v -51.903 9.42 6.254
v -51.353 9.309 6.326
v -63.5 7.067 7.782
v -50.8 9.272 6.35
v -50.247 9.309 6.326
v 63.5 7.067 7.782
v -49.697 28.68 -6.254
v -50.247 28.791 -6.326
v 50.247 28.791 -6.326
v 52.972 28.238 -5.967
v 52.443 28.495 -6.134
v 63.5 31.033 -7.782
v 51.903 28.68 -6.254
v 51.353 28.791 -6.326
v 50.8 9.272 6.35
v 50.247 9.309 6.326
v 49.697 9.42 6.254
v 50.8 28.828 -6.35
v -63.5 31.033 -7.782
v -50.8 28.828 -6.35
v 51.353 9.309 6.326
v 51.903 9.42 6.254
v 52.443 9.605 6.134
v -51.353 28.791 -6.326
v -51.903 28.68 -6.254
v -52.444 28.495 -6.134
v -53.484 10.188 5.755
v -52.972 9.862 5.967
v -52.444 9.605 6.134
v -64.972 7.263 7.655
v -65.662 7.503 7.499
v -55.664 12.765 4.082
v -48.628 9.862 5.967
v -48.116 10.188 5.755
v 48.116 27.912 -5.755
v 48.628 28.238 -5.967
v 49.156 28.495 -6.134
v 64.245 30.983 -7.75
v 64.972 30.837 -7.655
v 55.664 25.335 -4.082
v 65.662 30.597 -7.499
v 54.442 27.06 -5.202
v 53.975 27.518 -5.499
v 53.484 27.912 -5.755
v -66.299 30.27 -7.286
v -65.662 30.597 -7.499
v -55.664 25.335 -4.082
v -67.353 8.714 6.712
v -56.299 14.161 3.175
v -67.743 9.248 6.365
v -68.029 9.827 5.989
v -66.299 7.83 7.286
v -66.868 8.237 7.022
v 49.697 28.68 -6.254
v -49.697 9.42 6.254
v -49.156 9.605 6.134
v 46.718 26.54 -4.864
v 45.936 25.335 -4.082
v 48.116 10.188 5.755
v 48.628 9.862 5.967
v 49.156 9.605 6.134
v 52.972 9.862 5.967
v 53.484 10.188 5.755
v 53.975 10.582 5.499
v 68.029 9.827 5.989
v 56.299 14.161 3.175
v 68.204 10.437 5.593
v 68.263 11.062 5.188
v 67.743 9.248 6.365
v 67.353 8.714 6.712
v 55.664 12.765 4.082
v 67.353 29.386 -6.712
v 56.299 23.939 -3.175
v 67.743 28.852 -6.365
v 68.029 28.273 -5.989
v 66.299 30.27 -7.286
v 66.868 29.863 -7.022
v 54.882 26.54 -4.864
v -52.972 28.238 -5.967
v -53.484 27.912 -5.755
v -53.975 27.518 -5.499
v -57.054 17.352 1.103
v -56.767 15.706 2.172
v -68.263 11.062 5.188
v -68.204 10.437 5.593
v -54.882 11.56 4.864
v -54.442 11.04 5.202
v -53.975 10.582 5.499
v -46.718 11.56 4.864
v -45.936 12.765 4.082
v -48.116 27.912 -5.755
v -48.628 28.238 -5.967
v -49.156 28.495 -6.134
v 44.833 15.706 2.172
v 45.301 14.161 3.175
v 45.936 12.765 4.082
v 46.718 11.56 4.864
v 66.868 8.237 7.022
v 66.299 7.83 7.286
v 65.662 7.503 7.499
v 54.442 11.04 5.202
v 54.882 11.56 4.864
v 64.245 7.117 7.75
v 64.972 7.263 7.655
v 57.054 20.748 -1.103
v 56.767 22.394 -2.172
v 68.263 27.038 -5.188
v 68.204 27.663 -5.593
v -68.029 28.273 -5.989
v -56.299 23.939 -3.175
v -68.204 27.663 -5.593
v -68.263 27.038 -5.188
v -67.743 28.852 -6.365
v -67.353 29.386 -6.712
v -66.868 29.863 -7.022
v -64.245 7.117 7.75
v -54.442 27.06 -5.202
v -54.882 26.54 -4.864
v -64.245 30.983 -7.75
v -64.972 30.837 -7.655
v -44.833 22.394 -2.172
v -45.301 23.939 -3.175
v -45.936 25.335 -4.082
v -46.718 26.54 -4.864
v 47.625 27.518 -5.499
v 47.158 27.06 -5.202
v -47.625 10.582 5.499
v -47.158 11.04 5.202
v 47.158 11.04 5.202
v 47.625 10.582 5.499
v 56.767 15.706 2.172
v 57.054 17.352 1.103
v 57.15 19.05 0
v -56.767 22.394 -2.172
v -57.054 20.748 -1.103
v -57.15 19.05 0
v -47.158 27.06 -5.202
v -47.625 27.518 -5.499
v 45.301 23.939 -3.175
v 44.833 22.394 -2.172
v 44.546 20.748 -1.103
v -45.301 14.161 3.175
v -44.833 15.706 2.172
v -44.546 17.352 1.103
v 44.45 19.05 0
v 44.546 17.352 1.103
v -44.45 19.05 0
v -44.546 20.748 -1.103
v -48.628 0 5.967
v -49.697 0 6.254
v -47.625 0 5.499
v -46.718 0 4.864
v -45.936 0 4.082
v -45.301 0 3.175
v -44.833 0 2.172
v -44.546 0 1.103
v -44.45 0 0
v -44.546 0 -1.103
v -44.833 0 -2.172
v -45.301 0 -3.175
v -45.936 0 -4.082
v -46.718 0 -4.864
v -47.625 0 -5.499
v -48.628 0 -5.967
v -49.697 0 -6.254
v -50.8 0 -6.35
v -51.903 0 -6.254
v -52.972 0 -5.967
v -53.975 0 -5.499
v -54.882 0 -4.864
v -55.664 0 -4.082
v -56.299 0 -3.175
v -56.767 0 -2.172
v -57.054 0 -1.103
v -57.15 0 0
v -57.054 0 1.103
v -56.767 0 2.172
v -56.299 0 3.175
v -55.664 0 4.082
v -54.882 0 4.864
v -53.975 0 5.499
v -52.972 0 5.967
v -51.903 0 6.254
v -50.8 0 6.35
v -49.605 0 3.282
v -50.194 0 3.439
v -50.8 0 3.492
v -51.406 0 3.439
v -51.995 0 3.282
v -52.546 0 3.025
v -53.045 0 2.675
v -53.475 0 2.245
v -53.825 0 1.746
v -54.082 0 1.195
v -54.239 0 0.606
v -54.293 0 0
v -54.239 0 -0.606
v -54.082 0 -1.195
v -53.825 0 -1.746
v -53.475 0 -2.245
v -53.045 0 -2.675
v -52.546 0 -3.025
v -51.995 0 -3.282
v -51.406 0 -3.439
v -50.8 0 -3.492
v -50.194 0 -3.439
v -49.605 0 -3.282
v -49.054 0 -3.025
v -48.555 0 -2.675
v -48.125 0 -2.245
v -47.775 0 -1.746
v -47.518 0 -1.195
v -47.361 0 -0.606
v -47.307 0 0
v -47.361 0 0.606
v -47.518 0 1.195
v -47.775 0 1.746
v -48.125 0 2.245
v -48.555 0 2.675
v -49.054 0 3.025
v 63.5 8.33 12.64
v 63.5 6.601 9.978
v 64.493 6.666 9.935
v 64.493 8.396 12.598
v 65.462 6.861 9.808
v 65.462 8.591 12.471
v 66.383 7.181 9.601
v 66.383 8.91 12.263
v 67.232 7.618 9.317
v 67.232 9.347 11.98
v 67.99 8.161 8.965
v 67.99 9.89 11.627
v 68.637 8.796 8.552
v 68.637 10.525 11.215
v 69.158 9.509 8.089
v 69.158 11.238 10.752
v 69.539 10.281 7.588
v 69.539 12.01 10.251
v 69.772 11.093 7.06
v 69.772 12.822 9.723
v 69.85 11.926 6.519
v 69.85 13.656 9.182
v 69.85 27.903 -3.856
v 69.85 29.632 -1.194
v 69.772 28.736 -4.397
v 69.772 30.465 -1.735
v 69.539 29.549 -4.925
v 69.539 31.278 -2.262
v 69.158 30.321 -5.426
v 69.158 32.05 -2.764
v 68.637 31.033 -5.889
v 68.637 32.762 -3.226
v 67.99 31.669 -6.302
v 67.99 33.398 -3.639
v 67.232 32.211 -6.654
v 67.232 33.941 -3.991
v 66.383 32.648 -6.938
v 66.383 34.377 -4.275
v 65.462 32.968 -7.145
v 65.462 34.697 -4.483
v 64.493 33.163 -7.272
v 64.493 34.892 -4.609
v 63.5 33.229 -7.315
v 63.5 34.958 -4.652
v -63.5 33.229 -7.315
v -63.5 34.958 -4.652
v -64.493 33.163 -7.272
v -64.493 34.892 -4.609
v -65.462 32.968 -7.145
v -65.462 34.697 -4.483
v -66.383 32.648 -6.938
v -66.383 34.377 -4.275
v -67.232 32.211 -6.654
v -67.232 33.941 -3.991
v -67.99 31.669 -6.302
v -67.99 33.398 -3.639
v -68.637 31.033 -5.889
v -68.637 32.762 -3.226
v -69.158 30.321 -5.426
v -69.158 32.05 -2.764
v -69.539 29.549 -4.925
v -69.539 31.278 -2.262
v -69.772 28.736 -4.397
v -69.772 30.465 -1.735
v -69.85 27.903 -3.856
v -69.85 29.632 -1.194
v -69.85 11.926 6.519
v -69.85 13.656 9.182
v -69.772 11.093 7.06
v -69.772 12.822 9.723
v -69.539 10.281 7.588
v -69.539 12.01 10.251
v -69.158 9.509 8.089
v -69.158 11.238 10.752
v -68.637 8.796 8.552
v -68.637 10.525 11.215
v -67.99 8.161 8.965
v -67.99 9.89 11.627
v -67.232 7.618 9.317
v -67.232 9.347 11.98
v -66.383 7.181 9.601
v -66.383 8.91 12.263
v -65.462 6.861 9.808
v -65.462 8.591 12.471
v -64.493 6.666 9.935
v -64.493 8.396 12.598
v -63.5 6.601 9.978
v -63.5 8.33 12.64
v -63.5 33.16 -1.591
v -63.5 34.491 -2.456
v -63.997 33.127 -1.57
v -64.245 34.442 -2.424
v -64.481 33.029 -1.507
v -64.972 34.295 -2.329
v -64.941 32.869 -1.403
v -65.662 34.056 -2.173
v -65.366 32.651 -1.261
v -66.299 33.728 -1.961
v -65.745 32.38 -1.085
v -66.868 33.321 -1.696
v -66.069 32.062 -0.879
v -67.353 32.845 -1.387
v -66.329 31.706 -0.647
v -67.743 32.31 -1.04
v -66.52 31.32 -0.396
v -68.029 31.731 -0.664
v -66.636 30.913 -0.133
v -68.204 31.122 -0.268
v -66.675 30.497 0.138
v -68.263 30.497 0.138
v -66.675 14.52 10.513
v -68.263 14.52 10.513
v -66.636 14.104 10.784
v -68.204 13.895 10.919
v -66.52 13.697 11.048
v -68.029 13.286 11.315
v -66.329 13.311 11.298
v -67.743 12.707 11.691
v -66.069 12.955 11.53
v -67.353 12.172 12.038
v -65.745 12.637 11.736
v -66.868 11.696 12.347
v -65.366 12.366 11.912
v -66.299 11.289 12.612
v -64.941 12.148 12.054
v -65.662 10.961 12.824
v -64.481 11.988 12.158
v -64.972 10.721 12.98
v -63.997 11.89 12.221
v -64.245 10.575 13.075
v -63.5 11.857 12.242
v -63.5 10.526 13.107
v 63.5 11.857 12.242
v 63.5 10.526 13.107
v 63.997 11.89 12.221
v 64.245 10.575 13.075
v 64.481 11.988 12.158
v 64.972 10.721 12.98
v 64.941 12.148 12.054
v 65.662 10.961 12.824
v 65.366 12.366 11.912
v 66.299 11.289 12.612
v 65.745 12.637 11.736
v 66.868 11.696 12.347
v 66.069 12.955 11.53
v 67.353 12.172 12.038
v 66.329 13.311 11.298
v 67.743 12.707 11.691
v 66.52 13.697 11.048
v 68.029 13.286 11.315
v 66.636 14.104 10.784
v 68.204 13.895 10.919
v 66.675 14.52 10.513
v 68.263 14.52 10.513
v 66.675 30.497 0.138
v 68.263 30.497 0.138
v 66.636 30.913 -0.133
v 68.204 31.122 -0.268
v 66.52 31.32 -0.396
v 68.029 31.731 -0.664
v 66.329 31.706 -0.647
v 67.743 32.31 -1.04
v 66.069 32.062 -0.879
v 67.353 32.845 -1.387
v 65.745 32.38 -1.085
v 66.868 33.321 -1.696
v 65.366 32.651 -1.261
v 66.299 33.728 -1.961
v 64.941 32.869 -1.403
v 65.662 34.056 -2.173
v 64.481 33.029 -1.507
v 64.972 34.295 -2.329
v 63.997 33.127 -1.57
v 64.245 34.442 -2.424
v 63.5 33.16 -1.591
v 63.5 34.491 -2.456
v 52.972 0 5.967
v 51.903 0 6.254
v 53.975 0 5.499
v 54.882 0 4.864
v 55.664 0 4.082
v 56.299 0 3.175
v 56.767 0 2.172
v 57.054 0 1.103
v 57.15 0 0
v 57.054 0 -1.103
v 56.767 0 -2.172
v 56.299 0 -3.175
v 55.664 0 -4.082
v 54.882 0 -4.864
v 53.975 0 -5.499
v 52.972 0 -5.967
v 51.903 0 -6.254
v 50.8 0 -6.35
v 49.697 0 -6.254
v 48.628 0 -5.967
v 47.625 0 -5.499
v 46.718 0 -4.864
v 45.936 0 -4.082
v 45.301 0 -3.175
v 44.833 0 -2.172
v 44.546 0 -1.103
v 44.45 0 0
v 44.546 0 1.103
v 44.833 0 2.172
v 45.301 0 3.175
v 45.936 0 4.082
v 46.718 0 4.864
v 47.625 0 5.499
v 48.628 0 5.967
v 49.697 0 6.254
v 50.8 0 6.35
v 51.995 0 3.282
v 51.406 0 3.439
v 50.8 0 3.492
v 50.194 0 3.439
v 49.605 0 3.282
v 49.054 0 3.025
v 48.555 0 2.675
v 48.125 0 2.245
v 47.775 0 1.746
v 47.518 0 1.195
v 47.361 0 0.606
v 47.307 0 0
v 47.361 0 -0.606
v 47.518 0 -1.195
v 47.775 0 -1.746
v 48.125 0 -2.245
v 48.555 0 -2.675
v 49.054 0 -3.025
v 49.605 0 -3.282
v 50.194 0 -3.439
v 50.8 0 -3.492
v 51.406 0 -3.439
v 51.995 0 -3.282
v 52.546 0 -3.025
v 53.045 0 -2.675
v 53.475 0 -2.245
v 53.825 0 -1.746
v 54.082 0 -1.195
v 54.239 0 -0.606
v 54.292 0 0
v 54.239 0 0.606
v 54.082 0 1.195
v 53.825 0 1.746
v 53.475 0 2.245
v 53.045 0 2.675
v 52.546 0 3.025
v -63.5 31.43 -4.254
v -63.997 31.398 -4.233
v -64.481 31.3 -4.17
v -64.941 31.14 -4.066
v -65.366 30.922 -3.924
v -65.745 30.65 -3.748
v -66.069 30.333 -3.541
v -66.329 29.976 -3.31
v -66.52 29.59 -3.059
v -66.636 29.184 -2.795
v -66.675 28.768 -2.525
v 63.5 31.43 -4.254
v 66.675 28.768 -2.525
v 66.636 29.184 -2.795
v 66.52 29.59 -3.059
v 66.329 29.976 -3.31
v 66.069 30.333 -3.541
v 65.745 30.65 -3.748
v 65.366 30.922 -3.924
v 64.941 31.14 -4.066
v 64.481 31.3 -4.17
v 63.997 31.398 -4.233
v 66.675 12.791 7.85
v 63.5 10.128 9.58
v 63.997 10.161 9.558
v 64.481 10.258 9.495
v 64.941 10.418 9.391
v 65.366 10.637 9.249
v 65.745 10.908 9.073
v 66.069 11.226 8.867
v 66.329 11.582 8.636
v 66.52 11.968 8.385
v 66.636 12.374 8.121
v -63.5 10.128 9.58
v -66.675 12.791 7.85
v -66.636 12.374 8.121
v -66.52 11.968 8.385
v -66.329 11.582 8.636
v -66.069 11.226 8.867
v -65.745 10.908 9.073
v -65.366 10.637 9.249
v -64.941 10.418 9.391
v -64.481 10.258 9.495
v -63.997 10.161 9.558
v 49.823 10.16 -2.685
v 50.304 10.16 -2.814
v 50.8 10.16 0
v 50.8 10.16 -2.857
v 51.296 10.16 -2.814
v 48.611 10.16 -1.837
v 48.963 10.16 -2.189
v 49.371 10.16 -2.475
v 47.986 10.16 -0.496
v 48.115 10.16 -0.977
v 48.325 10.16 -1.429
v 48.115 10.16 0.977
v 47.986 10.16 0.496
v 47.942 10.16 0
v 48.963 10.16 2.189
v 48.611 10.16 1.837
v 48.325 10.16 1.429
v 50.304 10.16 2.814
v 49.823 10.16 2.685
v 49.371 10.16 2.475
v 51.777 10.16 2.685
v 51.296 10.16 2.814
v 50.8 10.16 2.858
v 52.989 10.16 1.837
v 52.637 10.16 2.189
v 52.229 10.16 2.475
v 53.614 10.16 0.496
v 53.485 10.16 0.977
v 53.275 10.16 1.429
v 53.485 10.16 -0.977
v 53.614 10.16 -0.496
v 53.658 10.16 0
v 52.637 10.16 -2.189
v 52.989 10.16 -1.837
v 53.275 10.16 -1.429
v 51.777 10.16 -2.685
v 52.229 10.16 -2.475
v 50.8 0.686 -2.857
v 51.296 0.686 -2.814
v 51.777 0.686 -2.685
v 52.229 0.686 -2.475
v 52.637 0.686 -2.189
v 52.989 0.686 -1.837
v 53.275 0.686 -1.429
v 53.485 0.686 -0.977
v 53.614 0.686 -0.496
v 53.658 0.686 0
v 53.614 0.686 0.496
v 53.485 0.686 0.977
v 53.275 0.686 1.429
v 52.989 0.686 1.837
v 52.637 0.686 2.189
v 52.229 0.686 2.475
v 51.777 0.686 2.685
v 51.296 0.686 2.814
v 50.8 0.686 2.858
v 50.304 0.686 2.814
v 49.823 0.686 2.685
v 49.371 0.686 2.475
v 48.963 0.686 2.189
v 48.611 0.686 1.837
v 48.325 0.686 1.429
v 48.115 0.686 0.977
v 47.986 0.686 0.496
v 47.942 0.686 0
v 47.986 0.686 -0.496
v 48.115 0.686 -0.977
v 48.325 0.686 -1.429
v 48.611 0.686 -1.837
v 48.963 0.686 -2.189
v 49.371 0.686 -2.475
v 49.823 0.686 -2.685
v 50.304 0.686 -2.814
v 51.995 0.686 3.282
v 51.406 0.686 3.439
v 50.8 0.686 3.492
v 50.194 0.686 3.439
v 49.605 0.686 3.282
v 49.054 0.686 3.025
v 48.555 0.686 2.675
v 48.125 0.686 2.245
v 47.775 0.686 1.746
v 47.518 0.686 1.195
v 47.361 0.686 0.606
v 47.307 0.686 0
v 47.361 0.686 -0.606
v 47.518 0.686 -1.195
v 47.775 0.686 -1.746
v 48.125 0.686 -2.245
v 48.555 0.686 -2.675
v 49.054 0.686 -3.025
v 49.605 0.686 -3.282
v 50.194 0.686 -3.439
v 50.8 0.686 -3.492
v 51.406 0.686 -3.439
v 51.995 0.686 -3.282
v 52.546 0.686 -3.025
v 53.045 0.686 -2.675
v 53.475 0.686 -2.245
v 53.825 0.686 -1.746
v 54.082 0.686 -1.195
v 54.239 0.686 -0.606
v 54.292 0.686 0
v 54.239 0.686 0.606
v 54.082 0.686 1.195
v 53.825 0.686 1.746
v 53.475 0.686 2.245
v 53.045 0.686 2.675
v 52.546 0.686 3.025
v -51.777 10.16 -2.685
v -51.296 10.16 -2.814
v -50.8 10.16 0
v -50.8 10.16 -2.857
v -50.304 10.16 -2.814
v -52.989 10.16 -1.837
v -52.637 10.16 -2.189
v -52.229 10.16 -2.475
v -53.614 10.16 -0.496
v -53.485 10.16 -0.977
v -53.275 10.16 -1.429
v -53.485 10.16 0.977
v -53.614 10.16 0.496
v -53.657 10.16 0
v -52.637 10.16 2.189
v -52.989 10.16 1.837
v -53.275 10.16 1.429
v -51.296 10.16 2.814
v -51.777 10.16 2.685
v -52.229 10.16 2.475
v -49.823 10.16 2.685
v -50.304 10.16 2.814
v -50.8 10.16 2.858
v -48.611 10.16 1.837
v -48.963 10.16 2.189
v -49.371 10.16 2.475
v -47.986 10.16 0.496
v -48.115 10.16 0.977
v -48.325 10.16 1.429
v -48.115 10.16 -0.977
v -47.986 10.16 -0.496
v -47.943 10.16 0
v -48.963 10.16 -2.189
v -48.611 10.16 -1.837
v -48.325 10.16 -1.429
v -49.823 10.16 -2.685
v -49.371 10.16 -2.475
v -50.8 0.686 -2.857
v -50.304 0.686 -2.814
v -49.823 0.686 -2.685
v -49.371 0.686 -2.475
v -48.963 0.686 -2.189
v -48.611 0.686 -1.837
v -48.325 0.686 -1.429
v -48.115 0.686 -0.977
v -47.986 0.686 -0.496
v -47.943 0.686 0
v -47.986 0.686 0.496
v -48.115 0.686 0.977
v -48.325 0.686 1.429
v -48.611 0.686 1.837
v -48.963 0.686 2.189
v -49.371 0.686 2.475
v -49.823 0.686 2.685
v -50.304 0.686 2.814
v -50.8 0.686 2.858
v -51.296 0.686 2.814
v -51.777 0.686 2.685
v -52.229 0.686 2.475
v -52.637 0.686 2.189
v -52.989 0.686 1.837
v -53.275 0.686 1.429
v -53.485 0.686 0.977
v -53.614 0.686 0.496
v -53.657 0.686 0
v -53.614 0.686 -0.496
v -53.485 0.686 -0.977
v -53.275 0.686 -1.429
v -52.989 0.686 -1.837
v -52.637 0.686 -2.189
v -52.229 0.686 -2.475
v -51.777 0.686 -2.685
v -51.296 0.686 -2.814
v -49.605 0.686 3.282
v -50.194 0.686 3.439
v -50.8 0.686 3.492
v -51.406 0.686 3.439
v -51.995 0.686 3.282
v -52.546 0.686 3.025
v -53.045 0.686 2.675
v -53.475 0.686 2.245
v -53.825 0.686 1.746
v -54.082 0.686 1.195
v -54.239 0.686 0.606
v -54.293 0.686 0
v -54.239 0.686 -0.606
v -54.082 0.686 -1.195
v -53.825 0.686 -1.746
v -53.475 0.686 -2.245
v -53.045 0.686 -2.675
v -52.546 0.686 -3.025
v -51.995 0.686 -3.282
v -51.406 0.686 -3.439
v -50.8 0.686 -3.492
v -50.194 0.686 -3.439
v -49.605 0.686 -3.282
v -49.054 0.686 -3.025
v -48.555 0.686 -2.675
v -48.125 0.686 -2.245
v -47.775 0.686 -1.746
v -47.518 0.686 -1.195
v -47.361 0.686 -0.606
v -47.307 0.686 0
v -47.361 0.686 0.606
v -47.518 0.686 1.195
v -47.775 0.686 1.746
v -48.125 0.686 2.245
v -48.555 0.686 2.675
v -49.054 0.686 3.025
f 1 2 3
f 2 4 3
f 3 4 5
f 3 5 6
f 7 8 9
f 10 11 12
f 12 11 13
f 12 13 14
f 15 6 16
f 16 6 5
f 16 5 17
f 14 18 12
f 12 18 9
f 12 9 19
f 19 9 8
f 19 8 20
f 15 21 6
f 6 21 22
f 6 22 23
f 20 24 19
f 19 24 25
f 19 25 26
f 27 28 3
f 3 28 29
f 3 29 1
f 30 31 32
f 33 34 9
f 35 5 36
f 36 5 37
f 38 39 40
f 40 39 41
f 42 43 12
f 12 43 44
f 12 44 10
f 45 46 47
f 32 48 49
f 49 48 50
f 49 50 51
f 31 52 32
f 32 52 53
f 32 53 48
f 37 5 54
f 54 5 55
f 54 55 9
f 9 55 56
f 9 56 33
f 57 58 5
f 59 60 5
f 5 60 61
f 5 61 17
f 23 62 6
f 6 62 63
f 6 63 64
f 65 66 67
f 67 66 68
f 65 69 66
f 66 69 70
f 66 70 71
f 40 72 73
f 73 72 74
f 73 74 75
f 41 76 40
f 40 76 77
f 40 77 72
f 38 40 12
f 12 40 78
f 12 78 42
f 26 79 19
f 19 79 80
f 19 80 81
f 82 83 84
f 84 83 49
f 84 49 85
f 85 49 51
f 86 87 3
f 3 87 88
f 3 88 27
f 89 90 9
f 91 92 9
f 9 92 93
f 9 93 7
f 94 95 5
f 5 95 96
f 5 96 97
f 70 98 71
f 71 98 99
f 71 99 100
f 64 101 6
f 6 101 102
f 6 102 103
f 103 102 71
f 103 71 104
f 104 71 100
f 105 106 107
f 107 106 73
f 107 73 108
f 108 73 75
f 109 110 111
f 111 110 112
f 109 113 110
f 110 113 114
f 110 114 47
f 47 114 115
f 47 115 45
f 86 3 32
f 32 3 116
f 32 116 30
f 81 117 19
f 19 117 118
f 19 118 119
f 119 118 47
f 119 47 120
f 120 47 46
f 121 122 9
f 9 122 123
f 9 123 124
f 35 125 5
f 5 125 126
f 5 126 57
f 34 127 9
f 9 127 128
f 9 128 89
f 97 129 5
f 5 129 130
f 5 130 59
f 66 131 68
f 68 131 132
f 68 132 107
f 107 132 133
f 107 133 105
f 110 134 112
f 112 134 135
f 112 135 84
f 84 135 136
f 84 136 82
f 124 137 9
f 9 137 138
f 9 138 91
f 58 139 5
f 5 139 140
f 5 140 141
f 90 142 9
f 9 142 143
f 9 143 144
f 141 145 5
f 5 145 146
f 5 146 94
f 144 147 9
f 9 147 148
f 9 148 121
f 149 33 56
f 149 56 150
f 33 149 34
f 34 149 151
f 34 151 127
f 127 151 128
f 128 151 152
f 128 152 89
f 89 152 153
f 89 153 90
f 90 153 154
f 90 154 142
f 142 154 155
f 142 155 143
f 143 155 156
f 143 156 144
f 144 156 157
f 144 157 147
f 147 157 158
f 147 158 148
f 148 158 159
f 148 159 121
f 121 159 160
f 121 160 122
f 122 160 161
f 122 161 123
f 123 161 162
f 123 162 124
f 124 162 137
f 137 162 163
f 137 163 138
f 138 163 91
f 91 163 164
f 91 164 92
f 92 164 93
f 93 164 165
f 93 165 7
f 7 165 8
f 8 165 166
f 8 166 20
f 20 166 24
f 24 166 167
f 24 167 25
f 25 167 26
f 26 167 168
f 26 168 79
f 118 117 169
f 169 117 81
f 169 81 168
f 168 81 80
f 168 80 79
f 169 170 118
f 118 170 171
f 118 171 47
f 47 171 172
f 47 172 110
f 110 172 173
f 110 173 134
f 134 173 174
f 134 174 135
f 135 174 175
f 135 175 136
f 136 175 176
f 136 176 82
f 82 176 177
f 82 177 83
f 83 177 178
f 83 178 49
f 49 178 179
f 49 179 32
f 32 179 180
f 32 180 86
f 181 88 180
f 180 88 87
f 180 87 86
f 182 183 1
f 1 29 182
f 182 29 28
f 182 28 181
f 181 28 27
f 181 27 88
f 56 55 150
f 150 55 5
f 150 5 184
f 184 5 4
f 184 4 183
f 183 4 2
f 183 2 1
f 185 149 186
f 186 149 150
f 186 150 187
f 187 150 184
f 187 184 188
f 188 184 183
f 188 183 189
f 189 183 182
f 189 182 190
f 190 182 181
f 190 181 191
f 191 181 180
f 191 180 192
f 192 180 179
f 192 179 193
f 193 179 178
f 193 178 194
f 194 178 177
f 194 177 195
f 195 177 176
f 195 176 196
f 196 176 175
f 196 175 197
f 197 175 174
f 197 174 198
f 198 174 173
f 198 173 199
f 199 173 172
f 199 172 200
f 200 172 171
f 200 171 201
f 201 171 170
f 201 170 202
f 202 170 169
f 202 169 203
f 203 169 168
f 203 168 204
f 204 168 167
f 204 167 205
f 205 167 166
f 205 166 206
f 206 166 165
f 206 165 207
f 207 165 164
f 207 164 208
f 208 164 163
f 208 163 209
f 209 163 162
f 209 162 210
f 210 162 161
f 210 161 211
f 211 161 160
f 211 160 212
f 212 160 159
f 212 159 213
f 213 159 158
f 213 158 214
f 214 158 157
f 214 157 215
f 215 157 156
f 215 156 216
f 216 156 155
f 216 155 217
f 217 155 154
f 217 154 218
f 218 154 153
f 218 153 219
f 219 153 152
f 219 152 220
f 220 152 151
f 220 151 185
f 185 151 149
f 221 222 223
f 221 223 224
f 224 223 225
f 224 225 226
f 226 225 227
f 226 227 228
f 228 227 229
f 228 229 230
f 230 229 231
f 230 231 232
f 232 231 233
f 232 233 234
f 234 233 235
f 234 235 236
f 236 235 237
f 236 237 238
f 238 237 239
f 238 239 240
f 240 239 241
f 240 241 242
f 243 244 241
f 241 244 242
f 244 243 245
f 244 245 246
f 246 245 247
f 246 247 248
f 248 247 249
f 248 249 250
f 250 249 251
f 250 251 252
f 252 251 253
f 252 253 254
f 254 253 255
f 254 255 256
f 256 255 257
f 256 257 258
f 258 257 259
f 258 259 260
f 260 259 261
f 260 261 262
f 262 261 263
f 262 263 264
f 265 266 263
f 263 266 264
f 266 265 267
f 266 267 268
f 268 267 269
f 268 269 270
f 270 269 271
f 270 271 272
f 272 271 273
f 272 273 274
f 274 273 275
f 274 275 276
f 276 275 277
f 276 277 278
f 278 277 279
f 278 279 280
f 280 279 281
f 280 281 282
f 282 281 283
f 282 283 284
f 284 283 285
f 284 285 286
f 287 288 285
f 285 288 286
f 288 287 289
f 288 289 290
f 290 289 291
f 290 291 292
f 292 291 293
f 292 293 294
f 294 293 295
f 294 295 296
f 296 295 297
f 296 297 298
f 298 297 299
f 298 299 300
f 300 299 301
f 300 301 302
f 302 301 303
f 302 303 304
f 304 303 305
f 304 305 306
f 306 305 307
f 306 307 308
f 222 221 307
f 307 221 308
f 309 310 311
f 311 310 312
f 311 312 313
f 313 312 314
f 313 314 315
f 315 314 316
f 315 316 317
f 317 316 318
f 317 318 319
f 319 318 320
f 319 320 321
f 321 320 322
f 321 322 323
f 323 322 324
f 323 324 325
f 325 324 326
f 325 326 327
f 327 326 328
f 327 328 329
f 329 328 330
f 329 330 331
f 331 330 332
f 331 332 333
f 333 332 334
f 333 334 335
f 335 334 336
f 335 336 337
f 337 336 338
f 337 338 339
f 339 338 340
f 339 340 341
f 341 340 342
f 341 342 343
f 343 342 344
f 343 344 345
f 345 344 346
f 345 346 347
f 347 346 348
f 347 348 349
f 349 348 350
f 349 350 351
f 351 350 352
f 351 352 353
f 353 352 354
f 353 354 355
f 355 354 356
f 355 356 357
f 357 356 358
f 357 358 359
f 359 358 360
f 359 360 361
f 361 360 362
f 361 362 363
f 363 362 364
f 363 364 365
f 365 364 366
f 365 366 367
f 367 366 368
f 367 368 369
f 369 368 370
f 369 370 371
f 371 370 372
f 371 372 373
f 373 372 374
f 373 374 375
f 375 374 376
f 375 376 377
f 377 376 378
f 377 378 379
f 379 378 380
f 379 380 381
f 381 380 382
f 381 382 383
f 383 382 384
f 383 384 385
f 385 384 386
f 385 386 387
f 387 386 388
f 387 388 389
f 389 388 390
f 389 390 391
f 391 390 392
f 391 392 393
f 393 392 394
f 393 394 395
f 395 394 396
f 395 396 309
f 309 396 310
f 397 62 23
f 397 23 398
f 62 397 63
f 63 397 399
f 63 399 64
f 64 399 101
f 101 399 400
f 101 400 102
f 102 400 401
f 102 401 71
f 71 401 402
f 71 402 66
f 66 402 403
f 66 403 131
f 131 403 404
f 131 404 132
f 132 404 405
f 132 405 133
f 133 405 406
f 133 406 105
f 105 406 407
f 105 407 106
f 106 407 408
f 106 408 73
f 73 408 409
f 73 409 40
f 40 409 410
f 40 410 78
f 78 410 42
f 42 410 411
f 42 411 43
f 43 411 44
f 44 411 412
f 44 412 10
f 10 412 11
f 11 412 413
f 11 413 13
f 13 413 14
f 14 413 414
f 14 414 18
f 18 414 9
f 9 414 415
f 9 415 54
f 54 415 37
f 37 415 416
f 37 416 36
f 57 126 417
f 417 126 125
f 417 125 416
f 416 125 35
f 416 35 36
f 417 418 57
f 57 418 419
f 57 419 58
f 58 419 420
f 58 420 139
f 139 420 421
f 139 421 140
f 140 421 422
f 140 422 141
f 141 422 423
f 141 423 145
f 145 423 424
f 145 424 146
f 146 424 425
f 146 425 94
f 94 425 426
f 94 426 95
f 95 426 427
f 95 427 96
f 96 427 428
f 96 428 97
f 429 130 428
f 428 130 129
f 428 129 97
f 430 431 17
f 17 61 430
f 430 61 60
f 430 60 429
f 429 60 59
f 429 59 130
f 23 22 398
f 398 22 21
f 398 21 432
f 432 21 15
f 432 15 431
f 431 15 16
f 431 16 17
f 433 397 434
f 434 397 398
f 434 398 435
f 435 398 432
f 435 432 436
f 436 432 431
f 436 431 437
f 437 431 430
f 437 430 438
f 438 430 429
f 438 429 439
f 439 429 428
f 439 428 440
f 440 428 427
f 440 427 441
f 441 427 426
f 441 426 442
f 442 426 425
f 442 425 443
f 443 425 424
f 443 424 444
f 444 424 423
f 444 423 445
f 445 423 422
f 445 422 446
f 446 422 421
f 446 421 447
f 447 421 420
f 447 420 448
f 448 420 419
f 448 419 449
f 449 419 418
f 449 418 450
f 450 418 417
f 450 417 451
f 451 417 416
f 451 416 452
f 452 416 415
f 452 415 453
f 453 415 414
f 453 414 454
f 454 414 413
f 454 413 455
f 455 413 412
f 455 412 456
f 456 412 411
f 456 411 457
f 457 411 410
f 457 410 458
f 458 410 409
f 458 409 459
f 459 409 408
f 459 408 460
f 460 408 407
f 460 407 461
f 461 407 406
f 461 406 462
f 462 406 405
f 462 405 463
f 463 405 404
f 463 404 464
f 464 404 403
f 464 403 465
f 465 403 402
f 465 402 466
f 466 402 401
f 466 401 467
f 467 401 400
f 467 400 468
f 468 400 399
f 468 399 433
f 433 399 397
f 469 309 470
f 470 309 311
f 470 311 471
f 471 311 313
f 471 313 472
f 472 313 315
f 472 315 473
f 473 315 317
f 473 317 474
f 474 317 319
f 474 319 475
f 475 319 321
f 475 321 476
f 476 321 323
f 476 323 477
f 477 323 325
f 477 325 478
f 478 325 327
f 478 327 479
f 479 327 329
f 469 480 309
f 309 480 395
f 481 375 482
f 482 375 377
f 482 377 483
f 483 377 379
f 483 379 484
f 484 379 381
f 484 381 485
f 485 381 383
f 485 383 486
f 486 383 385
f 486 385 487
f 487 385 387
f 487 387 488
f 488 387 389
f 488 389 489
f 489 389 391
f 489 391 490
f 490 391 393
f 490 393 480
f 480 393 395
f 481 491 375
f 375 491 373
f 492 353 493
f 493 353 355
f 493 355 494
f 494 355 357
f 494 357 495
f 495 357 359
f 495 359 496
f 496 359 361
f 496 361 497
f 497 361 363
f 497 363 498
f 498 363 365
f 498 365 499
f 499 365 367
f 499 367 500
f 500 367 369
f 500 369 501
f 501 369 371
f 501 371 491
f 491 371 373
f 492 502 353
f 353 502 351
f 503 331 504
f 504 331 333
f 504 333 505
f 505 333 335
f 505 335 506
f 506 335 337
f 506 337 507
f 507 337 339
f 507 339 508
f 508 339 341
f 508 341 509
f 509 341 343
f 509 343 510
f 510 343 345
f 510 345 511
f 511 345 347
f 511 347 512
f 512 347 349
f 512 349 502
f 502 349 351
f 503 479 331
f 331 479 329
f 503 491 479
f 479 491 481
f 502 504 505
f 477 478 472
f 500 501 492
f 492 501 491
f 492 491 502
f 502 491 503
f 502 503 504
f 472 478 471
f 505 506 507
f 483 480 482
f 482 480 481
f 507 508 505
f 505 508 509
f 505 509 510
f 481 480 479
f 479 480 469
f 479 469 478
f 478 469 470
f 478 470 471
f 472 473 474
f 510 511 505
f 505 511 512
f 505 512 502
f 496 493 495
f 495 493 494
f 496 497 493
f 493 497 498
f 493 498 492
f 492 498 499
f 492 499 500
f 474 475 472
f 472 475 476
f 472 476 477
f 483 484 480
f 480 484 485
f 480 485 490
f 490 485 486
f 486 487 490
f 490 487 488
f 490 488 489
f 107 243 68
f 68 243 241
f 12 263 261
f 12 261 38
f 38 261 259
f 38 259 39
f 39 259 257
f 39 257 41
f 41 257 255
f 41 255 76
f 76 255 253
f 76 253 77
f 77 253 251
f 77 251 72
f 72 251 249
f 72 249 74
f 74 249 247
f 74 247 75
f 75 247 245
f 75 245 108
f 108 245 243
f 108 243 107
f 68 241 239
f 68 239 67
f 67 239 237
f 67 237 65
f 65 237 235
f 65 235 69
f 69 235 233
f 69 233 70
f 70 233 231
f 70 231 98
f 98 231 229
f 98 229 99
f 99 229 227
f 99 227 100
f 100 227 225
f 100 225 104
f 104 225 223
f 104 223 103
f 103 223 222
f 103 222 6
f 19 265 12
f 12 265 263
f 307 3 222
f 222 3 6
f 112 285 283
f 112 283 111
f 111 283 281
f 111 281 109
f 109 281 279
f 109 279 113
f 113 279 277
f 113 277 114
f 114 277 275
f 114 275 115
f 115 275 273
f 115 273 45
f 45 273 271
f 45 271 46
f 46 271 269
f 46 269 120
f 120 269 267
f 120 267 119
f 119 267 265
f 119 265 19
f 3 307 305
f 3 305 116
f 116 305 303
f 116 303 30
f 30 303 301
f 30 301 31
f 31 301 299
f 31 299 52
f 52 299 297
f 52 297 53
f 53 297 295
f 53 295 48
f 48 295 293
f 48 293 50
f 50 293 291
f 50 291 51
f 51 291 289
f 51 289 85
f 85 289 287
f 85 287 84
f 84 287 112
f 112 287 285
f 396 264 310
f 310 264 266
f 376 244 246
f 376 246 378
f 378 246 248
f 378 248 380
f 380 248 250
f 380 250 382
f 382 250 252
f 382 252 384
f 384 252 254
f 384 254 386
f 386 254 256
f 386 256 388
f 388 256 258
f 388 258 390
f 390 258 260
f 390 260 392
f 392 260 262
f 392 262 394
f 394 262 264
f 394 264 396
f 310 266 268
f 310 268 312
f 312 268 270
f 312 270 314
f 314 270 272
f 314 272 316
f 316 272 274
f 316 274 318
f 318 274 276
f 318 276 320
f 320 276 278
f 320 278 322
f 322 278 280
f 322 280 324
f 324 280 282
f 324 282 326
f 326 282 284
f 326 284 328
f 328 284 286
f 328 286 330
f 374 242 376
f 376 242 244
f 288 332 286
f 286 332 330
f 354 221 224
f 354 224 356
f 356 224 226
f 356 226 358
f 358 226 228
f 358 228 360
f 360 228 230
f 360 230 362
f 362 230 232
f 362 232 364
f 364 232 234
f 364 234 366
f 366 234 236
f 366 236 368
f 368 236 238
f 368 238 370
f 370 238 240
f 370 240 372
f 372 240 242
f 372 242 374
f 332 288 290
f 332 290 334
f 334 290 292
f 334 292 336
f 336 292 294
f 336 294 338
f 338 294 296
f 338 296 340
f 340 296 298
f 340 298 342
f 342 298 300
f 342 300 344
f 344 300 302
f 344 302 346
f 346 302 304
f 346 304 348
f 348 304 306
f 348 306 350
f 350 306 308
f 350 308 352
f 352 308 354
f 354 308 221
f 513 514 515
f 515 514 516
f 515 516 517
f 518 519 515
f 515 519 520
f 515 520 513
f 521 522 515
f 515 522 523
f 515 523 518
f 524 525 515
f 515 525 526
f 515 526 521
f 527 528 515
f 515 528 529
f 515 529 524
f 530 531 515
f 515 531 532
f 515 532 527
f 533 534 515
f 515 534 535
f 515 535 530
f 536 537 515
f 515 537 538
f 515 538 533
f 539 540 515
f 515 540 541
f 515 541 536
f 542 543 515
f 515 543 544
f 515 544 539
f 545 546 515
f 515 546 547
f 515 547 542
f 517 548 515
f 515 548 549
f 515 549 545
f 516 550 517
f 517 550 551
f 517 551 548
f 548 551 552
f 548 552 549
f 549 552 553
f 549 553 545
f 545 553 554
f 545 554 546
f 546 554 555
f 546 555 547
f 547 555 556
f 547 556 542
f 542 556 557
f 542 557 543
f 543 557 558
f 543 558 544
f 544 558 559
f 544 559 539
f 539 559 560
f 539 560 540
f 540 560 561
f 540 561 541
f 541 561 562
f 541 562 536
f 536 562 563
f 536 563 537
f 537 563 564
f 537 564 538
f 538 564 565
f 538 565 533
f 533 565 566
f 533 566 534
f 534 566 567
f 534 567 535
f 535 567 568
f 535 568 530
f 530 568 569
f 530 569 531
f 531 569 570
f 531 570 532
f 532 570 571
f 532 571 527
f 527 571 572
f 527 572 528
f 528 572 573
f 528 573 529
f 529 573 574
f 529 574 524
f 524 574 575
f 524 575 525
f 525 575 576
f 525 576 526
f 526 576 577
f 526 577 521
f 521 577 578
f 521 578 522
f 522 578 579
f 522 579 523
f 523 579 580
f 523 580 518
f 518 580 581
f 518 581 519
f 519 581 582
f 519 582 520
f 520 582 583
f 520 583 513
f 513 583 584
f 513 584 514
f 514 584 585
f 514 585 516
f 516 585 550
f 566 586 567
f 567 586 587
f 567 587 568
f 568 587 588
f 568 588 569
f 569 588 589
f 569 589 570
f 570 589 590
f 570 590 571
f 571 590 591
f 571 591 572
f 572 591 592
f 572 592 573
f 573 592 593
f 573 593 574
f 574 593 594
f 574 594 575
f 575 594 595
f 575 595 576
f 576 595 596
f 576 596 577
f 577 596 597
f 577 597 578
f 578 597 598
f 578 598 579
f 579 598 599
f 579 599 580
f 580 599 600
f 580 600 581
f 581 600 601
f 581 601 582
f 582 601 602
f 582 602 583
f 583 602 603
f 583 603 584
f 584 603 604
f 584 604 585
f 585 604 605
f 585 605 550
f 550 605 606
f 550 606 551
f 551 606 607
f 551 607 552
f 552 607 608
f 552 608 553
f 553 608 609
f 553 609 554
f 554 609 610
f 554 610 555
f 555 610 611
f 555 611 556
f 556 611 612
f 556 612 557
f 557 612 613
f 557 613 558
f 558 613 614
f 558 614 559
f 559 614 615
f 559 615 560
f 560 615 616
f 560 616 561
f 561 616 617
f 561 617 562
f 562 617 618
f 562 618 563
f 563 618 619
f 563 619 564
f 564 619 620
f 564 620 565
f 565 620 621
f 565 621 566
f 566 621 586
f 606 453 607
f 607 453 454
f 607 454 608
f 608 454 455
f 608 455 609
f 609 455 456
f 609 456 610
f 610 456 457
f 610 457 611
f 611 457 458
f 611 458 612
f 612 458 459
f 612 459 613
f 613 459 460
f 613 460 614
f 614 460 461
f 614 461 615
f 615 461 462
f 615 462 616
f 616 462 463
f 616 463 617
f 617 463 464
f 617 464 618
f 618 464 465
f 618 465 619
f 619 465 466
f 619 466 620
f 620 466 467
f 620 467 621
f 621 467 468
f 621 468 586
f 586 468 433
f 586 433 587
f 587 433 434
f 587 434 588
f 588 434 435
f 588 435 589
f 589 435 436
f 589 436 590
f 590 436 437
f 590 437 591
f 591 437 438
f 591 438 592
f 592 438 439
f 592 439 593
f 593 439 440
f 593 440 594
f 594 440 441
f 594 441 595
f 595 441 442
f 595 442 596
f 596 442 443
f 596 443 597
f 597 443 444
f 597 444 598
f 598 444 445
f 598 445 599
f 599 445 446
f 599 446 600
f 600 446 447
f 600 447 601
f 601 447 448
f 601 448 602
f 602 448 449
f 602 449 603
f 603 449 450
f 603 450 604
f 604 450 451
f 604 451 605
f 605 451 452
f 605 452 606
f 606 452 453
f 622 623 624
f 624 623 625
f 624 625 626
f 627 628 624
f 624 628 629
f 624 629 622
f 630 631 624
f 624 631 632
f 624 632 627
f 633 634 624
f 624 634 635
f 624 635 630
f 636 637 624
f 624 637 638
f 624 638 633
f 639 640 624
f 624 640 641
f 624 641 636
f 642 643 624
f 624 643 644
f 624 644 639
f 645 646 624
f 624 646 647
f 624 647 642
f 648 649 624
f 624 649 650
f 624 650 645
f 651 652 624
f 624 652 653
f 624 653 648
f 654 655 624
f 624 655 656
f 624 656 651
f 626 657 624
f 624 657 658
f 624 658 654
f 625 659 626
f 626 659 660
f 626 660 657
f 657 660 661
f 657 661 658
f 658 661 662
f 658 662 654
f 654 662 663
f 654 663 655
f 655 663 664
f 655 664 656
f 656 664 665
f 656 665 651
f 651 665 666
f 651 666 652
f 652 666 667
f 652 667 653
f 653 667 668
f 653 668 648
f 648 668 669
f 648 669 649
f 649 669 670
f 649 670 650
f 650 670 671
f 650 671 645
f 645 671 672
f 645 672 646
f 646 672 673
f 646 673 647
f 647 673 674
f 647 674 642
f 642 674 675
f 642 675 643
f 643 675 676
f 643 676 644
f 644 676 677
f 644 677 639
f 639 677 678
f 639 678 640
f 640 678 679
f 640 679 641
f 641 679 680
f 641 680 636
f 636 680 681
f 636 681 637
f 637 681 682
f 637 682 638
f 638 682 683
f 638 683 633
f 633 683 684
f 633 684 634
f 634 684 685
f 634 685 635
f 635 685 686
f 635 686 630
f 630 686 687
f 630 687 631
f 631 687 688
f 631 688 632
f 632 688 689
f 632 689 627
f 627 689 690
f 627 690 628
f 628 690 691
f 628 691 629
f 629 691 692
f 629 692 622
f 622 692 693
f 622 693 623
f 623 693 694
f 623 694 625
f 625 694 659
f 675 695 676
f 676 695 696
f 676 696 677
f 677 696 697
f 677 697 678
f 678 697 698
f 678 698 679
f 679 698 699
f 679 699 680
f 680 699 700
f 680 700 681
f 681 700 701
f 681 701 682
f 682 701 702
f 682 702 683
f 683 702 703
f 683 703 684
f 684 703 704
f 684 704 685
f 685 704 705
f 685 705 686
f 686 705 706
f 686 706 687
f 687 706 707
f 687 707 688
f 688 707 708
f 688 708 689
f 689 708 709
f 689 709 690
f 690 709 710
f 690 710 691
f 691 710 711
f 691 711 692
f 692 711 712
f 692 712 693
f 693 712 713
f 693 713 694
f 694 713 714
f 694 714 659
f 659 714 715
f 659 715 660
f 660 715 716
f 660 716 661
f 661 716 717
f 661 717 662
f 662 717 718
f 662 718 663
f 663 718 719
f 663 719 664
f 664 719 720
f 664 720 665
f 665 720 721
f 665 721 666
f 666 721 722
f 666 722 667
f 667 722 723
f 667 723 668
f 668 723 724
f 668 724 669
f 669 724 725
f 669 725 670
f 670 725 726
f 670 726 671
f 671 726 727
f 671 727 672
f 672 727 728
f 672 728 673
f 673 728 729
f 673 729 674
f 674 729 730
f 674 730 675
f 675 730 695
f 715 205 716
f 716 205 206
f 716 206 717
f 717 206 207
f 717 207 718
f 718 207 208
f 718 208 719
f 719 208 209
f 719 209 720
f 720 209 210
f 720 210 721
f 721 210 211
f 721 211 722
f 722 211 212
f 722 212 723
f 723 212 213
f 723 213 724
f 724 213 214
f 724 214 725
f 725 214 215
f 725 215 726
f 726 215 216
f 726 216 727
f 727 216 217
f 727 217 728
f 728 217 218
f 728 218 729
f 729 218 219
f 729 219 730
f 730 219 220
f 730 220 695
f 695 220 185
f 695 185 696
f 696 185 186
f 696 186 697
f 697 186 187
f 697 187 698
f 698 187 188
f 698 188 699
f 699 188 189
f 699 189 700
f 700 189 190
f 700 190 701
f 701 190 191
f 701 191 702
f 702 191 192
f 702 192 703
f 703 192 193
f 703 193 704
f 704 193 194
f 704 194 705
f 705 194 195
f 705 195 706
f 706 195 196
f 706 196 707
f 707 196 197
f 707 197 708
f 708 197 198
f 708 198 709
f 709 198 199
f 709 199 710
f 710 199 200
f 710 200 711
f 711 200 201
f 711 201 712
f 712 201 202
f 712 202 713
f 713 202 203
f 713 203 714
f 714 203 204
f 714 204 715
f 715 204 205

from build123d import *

# Parameters (mm, degrees)
SKETCH2_R             = 6.35
BOSS_EXTRUDE1_DEPTH   = 19.05
BOSS_EXTRUDE1_2_DEPTH = 19.05
BOSS_EXTRUDE2_DEPTH   = 6.35
BOSS_EXTRUDE3_REACH   = 75.737
CUT_EXTRUDE1_DEPTH    = 3.175
CHAMFER2_SIZE         = 1.5875
HOLE1_D               = 5.715
HOLE1_DEPTH           = 10.16
HOLE1_CBORE_D         = 6.985
HOLE1_CBORE_DEPTH     = 0.6858


with BuildPart() as part:
    # Sketch2 → Boss-Extrude1 (new body)
    with BuildSketch(Plane(origin=(0, 0, 0), x_dir=(1, 0, 0), z_dir=(0, 1, 0))):
        with Locations((-50.8, 0)):
            Circle(SKETCH2_R)
    extrude(amount=BOSS_EXTRUDE1_DEPTH)



with BuildPart() as body_2:
    # Sketch2 → Boss-Extrude1 2 (new body)
    with BuildSketch(Plane(origin=(0, 0, 0), x_dir=(1, 0, 0), z_dir=(0, 1, 0))):
        with Locations((50.8, 0)):
            Circle(SKETCH2_R)
    extrude(amount=BOSS_EXTRUDE1_2_DEPTH)


with BuildPart() as part_1:
    add(part.part)

    add(body_2.part)  # Boss-Extrude2 merges body 2
    # Sketch3 → Boss-Extrude2 (add)
    with BuildSketch(Plane(origin=(0, 5.650833475, 8.701520484), x_dir=(-1, 0, 0), z_dir=(0, 0.5446390350150281, 0.8386705679454234))):
        with BuildLine():
            ThreePointArc((-69.85, -25.501674319), (-67.990128061, -29.99180238), (-63.5, -31.851674319))
            Line((-63.5, -31.851674319), (63.5, -31.851674319))
            ThreePointArc((63.5, -31.851674319), (67.990128061, -29.99180238), (69.85, -25.501674319))
            Line((69.85, -25.501674319), (69.85, -6.451674319))
            ThreePointArc((69.85, -6.451674319), (67.990128061, -1.961546259), (63.5, -0.101674319))
            Line((63.5, -0.101674319), (-63.5, -0.101674319))
            ThreePointArc((-63.5, -0.101674319), (-67.990128061, -1.961546259), (-69.85, -6.451674319))
            Line((-69.85, -6.451674319), (-69.85, -25.501674319))
        make_face()
    extrude(amount=BOSS_EXTRUDE2_DEPTH)

    # Sketch8 → Boss-Extrude3 (add, up to next)
    with BuildSketch(Plane(origin=(0, 19.05, 0), x_dir=(1, 0, 0), z_dir=(0, 1, 0)), mode=Mode.PRIVATE) as boss_extrude3_sk1:
        with BuildLine():
            ThreePointArc((57.15, 0), (50.8, 6.35), (44.45, 0))
            Line((44.45, 0), (57.15, 0))
        make_face()
    boss_extrude3_tool1 = extrude(boss_extrude3_sk1.sketch, amount=BOSS_EXTRUDE3_REACH, mode=Mode.PRIVATE) - part_1.part
    # Sketch8 → Boss-Extrude3 (add, up to next)
    with BuildSketch(Plane(origin=(0, 19.05, 0), x_dir=(1, 0, 0), z_dir=(0, 1, 0)), mode=Mode.PRIVATE) as boss_extrude3_sk2:
        with BuildLine():
            ThreePointArc((-44.45, 0), (-50.8, 6.35), (-57.15, 0))
            Line((-57.15, 0), (-44.45, 0))
        make_face()
    boss_extrude3_tool2 = extrude(boss_extrude3_sk2.sketch, amount=BOSS_EXTRUDE3_REACH, mode=Mode.PRIVATE) - part_1.part
    add(boss_extrude3_tool1.solids().sort_by_distance((50.8, 19.05, -2.695024))[0])
    add(boss_extrude3_tool2.solids().sort_by_distance((-50.8, 19.05, -2.695024))[0])

    # Sketch9 → Cut-Extrude1 (cut)
    with BuildSketch(Plane(origin=(0, 9.109291347, 14.02707859), x_dir=(1, 0, 0), z_dir=(0, 0.5446390350150282, 0.8386705679454234))):
        with BuildLine():
            Line((63.5, 28.676674319), (-63.5, 28.676674319))
            ThreePointArc((-63.5, 28.676674319), (-65.74506403, 27.74673835), (-66.675, 25.501674319))
            Line((-66.675, 25.501674319), (-66.675, 6.451674319))
            ThreePointArc((-66.675, 6.451674319), (-65.74506403, 4.206610289), (-63.5, 3.276674319))
            Line((-63.5, 3.276674319), (63.5, 3.276674319))
            ThreePointArc((63.5, 3.276674319), (65.74506403, 4.206610289), (66.675, 6.451674319))
            Line((66.675, 6.451674319), (66.675, 25.501674319))
            ThreePointArc((66.675, 25.501674319), (65.74506403, 27.74673835), (63.5, 28.676674319))
        make_face()
    extrude(amount=-CUT_EXTRUDE1_DEPTH, mode=Mode.SUBTRACT)

    # Chamfer2
    chamfer2_edges = [part_1.edges().sort_by_distance(p)[0] for p in [
        (-69.85, 19.05, 0),
        (0, 32.363895266, -8.646144681),
        (69.85, 19.05, 0),
        (0, 5.736104734, 8.646144681),
        (0, 9.194562606, 13.971702787),
        (-69.85, 22.508457872, 5.325558106),
        (69.85, 22.508457872, 5.325558106),
        (0, 35.822353138, -3.320586574),
        (67.990128061, 30.80407541, -7.633185823),
        (-67.990128061, 30.80407541, -7.633185823),
        (67.990128061, 7.29592459, 7.633185823),
        (-67.990128061, 7.29592459, 7.633185823),
        (67.990128061, 10.754382462, 12.958743929),
        (-67.990128061, 10.754382462, 12.958743929),
        (67.990128061, 34.262533283, -2.307627716),
        (-67.990128061, 34.262533283, -2.307627716),
    ]]
    chamfer(chamfer2_edges, length=CHAMFER2_SIZE)

    # Hole1
    with Locations(Plane(origin=(-50.8, 0, 0), x_dir=(0, 0, -1), z_dir=(0, -1, 0))):
        with Locations((0, 0), (0, 101.6)):
            CounterBoreHole(HOLE1_D / 2, HOLE1_CBORE_D / 2, HOLE1_CBORE_DEPTH, depth=HOLE1_DEPTH)


solid = part_1.part
